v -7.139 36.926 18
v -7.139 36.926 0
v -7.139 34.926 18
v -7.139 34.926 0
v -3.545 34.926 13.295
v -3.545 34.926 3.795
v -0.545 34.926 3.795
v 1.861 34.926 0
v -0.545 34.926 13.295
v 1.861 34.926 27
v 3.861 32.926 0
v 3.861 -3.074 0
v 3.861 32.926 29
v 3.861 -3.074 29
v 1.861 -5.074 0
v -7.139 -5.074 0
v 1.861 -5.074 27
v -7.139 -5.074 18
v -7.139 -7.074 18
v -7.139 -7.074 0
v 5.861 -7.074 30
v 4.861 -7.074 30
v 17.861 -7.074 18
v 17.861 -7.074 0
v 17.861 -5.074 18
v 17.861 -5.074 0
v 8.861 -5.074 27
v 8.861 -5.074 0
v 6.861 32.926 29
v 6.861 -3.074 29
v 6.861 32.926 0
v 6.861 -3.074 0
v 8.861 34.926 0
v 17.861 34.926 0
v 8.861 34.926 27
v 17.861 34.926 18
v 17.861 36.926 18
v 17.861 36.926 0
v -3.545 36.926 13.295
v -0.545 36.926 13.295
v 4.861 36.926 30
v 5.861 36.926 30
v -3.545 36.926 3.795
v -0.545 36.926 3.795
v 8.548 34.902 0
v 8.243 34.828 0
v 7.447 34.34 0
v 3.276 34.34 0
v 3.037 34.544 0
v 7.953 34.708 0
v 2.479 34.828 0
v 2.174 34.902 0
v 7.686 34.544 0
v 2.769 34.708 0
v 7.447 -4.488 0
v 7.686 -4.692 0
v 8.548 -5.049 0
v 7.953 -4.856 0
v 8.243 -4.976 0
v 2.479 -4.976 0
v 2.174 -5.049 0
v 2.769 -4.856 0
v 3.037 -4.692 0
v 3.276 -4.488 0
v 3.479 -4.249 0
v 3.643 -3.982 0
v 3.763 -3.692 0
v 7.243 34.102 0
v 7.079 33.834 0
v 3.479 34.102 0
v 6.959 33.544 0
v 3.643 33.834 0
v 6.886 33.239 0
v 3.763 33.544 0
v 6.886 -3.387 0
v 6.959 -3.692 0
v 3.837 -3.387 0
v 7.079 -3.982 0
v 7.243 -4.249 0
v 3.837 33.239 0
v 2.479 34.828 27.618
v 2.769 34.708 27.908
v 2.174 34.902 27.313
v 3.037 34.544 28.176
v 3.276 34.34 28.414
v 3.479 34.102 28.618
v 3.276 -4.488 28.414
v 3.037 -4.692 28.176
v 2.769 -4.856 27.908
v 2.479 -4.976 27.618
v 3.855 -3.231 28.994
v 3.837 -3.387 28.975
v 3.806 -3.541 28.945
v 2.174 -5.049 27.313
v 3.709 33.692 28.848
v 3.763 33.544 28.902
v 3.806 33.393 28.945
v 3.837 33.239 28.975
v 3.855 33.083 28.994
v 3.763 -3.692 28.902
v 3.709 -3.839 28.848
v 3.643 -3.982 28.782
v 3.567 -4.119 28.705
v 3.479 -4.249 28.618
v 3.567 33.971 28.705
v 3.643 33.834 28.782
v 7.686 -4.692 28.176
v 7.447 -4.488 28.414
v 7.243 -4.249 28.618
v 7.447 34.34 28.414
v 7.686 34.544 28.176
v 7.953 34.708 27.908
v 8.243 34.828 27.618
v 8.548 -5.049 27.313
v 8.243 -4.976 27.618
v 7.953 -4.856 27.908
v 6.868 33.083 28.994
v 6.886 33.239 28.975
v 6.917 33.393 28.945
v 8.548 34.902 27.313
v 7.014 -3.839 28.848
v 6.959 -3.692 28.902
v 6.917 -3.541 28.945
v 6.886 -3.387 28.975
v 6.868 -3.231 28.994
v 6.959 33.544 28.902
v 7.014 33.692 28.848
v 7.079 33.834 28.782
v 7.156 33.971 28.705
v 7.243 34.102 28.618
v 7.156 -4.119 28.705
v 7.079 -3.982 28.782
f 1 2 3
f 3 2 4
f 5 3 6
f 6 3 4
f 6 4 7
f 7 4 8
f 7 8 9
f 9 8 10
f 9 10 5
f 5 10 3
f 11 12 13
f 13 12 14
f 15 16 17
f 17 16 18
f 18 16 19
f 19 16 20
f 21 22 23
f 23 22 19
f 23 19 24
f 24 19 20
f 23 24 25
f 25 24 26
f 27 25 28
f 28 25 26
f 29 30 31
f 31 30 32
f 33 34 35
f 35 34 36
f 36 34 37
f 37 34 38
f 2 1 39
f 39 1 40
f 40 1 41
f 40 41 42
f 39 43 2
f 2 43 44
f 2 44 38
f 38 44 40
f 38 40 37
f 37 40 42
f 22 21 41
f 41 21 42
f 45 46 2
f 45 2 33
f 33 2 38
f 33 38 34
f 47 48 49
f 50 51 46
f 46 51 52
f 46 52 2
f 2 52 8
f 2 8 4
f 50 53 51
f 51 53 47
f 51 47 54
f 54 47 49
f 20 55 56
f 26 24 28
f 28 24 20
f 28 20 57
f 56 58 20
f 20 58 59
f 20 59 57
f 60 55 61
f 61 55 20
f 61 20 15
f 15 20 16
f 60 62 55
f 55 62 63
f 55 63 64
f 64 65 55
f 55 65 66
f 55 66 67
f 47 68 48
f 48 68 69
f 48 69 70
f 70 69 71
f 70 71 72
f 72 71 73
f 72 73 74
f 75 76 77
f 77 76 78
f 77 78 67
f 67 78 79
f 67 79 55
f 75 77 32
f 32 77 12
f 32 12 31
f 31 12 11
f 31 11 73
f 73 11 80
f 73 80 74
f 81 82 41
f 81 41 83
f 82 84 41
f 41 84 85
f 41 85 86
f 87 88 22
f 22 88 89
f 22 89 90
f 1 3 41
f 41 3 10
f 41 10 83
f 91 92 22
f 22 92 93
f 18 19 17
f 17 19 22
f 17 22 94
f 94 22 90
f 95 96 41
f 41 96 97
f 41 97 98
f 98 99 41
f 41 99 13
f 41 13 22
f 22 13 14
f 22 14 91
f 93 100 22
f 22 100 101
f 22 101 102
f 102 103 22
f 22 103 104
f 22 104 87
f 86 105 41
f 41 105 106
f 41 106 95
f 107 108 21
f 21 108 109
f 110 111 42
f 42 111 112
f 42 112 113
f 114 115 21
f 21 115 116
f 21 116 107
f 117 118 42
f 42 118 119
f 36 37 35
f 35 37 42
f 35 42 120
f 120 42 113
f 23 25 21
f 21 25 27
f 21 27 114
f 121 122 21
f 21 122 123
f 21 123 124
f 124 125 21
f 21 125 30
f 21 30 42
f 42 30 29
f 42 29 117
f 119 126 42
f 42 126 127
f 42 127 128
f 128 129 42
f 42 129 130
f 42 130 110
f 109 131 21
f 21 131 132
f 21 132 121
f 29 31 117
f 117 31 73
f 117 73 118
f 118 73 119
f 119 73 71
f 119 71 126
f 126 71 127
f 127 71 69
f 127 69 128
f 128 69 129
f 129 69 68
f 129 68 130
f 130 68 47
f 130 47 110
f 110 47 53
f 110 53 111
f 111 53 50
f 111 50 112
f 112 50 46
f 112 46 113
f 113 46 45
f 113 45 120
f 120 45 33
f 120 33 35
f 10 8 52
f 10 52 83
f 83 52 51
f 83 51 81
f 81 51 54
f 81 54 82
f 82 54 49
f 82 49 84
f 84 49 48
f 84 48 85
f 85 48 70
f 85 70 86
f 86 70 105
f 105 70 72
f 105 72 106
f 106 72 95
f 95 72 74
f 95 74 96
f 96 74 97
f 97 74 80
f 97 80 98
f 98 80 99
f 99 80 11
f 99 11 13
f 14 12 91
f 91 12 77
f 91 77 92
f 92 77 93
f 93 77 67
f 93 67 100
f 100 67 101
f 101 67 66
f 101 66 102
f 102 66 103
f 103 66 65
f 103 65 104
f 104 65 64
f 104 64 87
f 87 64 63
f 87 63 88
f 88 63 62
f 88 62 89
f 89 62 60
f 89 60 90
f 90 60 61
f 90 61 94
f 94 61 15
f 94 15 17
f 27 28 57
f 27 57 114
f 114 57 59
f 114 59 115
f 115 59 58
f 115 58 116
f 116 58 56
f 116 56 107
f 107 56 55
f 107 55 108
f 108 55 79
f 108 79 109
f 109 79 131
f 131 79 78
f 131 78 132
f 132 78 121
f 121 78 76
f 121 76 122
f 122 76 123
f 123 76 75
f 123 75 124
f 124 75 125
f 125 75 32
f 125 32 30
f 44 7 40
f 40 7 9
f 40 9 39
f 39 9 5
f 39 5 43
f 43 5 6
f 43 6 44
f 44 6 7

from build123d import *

# Parameters (mm, degrees)
BOSS_EXTRUDE1_DEPTH = 30
CHAMFER1_SIZE       = 12
FILLET1_R           = 2
SKETCH2_W           = 3
SKETCH2_H           = 9.5
CUT_EXTRUDE1_DEPTH  = 30


with BuildPart() as part:
    # Sketch1 → Boss-Extrude1 (new body)
    with BuildSketch(Plane.XY):
        Polygon((6.861356932, 34.926253687), (17.861356932, 34.926253687), (17.861356932, 36.926253687), (-7.138643068, 36.926253687), (-7.138643068, 34.926253687), (3.861356932, 34.926253687), (3.861356932, -5.073746313), (-7.138643068, -5.073746313), (-7.138643068, -7.073746313), (17.861356932, -7.073746313), (17.861356932, -5.073746313), (6.861356932, -5.073746313), align=None)
    extrude(amount=BOSS_EXTRUDE1_DEPTH)

    # Chamfer1
    chamfer1_edges = [part.edges().sort_by_distance(p)[0] for p in [
        (-7.138643068, 35.926253687, 30),
        (17.861356932, 35.926253687, 30),
    ]]
    chamfer(chamfer1_edges, length=CHAMFER1_SIZE)

    # Fillet1
    fillet1_edges = [part.edges().sort_by_distance(p)[0] for p in [
        (3.861356932, -5.073746313, 14.5),
        (3.861356932, 34.926253687, 14.5),
        (6.861356932, 34.926253687, 14.5),
        (6.861356932, -5.073746313, 14.5),
    ]]
    fillet(fillet1_edges, radius=FILLET1_R)

    # Sketch2 → Cut-Extrude1 (cut)
    with BuildSketch(Plane(origin=(0, 36.926253687, 0), x_dir=(1, 0, 0), z_dir=(0, 1, 0))):
        with Locations((-2.045453442, -8.544505852)):
            Rectangle(SKETCH2_W, SKETCH2_H)
    extrude(amount=-CUT_EXTRUDE1_DEPTH, mode=Mode.SUBTRACT)


solid = part.part
